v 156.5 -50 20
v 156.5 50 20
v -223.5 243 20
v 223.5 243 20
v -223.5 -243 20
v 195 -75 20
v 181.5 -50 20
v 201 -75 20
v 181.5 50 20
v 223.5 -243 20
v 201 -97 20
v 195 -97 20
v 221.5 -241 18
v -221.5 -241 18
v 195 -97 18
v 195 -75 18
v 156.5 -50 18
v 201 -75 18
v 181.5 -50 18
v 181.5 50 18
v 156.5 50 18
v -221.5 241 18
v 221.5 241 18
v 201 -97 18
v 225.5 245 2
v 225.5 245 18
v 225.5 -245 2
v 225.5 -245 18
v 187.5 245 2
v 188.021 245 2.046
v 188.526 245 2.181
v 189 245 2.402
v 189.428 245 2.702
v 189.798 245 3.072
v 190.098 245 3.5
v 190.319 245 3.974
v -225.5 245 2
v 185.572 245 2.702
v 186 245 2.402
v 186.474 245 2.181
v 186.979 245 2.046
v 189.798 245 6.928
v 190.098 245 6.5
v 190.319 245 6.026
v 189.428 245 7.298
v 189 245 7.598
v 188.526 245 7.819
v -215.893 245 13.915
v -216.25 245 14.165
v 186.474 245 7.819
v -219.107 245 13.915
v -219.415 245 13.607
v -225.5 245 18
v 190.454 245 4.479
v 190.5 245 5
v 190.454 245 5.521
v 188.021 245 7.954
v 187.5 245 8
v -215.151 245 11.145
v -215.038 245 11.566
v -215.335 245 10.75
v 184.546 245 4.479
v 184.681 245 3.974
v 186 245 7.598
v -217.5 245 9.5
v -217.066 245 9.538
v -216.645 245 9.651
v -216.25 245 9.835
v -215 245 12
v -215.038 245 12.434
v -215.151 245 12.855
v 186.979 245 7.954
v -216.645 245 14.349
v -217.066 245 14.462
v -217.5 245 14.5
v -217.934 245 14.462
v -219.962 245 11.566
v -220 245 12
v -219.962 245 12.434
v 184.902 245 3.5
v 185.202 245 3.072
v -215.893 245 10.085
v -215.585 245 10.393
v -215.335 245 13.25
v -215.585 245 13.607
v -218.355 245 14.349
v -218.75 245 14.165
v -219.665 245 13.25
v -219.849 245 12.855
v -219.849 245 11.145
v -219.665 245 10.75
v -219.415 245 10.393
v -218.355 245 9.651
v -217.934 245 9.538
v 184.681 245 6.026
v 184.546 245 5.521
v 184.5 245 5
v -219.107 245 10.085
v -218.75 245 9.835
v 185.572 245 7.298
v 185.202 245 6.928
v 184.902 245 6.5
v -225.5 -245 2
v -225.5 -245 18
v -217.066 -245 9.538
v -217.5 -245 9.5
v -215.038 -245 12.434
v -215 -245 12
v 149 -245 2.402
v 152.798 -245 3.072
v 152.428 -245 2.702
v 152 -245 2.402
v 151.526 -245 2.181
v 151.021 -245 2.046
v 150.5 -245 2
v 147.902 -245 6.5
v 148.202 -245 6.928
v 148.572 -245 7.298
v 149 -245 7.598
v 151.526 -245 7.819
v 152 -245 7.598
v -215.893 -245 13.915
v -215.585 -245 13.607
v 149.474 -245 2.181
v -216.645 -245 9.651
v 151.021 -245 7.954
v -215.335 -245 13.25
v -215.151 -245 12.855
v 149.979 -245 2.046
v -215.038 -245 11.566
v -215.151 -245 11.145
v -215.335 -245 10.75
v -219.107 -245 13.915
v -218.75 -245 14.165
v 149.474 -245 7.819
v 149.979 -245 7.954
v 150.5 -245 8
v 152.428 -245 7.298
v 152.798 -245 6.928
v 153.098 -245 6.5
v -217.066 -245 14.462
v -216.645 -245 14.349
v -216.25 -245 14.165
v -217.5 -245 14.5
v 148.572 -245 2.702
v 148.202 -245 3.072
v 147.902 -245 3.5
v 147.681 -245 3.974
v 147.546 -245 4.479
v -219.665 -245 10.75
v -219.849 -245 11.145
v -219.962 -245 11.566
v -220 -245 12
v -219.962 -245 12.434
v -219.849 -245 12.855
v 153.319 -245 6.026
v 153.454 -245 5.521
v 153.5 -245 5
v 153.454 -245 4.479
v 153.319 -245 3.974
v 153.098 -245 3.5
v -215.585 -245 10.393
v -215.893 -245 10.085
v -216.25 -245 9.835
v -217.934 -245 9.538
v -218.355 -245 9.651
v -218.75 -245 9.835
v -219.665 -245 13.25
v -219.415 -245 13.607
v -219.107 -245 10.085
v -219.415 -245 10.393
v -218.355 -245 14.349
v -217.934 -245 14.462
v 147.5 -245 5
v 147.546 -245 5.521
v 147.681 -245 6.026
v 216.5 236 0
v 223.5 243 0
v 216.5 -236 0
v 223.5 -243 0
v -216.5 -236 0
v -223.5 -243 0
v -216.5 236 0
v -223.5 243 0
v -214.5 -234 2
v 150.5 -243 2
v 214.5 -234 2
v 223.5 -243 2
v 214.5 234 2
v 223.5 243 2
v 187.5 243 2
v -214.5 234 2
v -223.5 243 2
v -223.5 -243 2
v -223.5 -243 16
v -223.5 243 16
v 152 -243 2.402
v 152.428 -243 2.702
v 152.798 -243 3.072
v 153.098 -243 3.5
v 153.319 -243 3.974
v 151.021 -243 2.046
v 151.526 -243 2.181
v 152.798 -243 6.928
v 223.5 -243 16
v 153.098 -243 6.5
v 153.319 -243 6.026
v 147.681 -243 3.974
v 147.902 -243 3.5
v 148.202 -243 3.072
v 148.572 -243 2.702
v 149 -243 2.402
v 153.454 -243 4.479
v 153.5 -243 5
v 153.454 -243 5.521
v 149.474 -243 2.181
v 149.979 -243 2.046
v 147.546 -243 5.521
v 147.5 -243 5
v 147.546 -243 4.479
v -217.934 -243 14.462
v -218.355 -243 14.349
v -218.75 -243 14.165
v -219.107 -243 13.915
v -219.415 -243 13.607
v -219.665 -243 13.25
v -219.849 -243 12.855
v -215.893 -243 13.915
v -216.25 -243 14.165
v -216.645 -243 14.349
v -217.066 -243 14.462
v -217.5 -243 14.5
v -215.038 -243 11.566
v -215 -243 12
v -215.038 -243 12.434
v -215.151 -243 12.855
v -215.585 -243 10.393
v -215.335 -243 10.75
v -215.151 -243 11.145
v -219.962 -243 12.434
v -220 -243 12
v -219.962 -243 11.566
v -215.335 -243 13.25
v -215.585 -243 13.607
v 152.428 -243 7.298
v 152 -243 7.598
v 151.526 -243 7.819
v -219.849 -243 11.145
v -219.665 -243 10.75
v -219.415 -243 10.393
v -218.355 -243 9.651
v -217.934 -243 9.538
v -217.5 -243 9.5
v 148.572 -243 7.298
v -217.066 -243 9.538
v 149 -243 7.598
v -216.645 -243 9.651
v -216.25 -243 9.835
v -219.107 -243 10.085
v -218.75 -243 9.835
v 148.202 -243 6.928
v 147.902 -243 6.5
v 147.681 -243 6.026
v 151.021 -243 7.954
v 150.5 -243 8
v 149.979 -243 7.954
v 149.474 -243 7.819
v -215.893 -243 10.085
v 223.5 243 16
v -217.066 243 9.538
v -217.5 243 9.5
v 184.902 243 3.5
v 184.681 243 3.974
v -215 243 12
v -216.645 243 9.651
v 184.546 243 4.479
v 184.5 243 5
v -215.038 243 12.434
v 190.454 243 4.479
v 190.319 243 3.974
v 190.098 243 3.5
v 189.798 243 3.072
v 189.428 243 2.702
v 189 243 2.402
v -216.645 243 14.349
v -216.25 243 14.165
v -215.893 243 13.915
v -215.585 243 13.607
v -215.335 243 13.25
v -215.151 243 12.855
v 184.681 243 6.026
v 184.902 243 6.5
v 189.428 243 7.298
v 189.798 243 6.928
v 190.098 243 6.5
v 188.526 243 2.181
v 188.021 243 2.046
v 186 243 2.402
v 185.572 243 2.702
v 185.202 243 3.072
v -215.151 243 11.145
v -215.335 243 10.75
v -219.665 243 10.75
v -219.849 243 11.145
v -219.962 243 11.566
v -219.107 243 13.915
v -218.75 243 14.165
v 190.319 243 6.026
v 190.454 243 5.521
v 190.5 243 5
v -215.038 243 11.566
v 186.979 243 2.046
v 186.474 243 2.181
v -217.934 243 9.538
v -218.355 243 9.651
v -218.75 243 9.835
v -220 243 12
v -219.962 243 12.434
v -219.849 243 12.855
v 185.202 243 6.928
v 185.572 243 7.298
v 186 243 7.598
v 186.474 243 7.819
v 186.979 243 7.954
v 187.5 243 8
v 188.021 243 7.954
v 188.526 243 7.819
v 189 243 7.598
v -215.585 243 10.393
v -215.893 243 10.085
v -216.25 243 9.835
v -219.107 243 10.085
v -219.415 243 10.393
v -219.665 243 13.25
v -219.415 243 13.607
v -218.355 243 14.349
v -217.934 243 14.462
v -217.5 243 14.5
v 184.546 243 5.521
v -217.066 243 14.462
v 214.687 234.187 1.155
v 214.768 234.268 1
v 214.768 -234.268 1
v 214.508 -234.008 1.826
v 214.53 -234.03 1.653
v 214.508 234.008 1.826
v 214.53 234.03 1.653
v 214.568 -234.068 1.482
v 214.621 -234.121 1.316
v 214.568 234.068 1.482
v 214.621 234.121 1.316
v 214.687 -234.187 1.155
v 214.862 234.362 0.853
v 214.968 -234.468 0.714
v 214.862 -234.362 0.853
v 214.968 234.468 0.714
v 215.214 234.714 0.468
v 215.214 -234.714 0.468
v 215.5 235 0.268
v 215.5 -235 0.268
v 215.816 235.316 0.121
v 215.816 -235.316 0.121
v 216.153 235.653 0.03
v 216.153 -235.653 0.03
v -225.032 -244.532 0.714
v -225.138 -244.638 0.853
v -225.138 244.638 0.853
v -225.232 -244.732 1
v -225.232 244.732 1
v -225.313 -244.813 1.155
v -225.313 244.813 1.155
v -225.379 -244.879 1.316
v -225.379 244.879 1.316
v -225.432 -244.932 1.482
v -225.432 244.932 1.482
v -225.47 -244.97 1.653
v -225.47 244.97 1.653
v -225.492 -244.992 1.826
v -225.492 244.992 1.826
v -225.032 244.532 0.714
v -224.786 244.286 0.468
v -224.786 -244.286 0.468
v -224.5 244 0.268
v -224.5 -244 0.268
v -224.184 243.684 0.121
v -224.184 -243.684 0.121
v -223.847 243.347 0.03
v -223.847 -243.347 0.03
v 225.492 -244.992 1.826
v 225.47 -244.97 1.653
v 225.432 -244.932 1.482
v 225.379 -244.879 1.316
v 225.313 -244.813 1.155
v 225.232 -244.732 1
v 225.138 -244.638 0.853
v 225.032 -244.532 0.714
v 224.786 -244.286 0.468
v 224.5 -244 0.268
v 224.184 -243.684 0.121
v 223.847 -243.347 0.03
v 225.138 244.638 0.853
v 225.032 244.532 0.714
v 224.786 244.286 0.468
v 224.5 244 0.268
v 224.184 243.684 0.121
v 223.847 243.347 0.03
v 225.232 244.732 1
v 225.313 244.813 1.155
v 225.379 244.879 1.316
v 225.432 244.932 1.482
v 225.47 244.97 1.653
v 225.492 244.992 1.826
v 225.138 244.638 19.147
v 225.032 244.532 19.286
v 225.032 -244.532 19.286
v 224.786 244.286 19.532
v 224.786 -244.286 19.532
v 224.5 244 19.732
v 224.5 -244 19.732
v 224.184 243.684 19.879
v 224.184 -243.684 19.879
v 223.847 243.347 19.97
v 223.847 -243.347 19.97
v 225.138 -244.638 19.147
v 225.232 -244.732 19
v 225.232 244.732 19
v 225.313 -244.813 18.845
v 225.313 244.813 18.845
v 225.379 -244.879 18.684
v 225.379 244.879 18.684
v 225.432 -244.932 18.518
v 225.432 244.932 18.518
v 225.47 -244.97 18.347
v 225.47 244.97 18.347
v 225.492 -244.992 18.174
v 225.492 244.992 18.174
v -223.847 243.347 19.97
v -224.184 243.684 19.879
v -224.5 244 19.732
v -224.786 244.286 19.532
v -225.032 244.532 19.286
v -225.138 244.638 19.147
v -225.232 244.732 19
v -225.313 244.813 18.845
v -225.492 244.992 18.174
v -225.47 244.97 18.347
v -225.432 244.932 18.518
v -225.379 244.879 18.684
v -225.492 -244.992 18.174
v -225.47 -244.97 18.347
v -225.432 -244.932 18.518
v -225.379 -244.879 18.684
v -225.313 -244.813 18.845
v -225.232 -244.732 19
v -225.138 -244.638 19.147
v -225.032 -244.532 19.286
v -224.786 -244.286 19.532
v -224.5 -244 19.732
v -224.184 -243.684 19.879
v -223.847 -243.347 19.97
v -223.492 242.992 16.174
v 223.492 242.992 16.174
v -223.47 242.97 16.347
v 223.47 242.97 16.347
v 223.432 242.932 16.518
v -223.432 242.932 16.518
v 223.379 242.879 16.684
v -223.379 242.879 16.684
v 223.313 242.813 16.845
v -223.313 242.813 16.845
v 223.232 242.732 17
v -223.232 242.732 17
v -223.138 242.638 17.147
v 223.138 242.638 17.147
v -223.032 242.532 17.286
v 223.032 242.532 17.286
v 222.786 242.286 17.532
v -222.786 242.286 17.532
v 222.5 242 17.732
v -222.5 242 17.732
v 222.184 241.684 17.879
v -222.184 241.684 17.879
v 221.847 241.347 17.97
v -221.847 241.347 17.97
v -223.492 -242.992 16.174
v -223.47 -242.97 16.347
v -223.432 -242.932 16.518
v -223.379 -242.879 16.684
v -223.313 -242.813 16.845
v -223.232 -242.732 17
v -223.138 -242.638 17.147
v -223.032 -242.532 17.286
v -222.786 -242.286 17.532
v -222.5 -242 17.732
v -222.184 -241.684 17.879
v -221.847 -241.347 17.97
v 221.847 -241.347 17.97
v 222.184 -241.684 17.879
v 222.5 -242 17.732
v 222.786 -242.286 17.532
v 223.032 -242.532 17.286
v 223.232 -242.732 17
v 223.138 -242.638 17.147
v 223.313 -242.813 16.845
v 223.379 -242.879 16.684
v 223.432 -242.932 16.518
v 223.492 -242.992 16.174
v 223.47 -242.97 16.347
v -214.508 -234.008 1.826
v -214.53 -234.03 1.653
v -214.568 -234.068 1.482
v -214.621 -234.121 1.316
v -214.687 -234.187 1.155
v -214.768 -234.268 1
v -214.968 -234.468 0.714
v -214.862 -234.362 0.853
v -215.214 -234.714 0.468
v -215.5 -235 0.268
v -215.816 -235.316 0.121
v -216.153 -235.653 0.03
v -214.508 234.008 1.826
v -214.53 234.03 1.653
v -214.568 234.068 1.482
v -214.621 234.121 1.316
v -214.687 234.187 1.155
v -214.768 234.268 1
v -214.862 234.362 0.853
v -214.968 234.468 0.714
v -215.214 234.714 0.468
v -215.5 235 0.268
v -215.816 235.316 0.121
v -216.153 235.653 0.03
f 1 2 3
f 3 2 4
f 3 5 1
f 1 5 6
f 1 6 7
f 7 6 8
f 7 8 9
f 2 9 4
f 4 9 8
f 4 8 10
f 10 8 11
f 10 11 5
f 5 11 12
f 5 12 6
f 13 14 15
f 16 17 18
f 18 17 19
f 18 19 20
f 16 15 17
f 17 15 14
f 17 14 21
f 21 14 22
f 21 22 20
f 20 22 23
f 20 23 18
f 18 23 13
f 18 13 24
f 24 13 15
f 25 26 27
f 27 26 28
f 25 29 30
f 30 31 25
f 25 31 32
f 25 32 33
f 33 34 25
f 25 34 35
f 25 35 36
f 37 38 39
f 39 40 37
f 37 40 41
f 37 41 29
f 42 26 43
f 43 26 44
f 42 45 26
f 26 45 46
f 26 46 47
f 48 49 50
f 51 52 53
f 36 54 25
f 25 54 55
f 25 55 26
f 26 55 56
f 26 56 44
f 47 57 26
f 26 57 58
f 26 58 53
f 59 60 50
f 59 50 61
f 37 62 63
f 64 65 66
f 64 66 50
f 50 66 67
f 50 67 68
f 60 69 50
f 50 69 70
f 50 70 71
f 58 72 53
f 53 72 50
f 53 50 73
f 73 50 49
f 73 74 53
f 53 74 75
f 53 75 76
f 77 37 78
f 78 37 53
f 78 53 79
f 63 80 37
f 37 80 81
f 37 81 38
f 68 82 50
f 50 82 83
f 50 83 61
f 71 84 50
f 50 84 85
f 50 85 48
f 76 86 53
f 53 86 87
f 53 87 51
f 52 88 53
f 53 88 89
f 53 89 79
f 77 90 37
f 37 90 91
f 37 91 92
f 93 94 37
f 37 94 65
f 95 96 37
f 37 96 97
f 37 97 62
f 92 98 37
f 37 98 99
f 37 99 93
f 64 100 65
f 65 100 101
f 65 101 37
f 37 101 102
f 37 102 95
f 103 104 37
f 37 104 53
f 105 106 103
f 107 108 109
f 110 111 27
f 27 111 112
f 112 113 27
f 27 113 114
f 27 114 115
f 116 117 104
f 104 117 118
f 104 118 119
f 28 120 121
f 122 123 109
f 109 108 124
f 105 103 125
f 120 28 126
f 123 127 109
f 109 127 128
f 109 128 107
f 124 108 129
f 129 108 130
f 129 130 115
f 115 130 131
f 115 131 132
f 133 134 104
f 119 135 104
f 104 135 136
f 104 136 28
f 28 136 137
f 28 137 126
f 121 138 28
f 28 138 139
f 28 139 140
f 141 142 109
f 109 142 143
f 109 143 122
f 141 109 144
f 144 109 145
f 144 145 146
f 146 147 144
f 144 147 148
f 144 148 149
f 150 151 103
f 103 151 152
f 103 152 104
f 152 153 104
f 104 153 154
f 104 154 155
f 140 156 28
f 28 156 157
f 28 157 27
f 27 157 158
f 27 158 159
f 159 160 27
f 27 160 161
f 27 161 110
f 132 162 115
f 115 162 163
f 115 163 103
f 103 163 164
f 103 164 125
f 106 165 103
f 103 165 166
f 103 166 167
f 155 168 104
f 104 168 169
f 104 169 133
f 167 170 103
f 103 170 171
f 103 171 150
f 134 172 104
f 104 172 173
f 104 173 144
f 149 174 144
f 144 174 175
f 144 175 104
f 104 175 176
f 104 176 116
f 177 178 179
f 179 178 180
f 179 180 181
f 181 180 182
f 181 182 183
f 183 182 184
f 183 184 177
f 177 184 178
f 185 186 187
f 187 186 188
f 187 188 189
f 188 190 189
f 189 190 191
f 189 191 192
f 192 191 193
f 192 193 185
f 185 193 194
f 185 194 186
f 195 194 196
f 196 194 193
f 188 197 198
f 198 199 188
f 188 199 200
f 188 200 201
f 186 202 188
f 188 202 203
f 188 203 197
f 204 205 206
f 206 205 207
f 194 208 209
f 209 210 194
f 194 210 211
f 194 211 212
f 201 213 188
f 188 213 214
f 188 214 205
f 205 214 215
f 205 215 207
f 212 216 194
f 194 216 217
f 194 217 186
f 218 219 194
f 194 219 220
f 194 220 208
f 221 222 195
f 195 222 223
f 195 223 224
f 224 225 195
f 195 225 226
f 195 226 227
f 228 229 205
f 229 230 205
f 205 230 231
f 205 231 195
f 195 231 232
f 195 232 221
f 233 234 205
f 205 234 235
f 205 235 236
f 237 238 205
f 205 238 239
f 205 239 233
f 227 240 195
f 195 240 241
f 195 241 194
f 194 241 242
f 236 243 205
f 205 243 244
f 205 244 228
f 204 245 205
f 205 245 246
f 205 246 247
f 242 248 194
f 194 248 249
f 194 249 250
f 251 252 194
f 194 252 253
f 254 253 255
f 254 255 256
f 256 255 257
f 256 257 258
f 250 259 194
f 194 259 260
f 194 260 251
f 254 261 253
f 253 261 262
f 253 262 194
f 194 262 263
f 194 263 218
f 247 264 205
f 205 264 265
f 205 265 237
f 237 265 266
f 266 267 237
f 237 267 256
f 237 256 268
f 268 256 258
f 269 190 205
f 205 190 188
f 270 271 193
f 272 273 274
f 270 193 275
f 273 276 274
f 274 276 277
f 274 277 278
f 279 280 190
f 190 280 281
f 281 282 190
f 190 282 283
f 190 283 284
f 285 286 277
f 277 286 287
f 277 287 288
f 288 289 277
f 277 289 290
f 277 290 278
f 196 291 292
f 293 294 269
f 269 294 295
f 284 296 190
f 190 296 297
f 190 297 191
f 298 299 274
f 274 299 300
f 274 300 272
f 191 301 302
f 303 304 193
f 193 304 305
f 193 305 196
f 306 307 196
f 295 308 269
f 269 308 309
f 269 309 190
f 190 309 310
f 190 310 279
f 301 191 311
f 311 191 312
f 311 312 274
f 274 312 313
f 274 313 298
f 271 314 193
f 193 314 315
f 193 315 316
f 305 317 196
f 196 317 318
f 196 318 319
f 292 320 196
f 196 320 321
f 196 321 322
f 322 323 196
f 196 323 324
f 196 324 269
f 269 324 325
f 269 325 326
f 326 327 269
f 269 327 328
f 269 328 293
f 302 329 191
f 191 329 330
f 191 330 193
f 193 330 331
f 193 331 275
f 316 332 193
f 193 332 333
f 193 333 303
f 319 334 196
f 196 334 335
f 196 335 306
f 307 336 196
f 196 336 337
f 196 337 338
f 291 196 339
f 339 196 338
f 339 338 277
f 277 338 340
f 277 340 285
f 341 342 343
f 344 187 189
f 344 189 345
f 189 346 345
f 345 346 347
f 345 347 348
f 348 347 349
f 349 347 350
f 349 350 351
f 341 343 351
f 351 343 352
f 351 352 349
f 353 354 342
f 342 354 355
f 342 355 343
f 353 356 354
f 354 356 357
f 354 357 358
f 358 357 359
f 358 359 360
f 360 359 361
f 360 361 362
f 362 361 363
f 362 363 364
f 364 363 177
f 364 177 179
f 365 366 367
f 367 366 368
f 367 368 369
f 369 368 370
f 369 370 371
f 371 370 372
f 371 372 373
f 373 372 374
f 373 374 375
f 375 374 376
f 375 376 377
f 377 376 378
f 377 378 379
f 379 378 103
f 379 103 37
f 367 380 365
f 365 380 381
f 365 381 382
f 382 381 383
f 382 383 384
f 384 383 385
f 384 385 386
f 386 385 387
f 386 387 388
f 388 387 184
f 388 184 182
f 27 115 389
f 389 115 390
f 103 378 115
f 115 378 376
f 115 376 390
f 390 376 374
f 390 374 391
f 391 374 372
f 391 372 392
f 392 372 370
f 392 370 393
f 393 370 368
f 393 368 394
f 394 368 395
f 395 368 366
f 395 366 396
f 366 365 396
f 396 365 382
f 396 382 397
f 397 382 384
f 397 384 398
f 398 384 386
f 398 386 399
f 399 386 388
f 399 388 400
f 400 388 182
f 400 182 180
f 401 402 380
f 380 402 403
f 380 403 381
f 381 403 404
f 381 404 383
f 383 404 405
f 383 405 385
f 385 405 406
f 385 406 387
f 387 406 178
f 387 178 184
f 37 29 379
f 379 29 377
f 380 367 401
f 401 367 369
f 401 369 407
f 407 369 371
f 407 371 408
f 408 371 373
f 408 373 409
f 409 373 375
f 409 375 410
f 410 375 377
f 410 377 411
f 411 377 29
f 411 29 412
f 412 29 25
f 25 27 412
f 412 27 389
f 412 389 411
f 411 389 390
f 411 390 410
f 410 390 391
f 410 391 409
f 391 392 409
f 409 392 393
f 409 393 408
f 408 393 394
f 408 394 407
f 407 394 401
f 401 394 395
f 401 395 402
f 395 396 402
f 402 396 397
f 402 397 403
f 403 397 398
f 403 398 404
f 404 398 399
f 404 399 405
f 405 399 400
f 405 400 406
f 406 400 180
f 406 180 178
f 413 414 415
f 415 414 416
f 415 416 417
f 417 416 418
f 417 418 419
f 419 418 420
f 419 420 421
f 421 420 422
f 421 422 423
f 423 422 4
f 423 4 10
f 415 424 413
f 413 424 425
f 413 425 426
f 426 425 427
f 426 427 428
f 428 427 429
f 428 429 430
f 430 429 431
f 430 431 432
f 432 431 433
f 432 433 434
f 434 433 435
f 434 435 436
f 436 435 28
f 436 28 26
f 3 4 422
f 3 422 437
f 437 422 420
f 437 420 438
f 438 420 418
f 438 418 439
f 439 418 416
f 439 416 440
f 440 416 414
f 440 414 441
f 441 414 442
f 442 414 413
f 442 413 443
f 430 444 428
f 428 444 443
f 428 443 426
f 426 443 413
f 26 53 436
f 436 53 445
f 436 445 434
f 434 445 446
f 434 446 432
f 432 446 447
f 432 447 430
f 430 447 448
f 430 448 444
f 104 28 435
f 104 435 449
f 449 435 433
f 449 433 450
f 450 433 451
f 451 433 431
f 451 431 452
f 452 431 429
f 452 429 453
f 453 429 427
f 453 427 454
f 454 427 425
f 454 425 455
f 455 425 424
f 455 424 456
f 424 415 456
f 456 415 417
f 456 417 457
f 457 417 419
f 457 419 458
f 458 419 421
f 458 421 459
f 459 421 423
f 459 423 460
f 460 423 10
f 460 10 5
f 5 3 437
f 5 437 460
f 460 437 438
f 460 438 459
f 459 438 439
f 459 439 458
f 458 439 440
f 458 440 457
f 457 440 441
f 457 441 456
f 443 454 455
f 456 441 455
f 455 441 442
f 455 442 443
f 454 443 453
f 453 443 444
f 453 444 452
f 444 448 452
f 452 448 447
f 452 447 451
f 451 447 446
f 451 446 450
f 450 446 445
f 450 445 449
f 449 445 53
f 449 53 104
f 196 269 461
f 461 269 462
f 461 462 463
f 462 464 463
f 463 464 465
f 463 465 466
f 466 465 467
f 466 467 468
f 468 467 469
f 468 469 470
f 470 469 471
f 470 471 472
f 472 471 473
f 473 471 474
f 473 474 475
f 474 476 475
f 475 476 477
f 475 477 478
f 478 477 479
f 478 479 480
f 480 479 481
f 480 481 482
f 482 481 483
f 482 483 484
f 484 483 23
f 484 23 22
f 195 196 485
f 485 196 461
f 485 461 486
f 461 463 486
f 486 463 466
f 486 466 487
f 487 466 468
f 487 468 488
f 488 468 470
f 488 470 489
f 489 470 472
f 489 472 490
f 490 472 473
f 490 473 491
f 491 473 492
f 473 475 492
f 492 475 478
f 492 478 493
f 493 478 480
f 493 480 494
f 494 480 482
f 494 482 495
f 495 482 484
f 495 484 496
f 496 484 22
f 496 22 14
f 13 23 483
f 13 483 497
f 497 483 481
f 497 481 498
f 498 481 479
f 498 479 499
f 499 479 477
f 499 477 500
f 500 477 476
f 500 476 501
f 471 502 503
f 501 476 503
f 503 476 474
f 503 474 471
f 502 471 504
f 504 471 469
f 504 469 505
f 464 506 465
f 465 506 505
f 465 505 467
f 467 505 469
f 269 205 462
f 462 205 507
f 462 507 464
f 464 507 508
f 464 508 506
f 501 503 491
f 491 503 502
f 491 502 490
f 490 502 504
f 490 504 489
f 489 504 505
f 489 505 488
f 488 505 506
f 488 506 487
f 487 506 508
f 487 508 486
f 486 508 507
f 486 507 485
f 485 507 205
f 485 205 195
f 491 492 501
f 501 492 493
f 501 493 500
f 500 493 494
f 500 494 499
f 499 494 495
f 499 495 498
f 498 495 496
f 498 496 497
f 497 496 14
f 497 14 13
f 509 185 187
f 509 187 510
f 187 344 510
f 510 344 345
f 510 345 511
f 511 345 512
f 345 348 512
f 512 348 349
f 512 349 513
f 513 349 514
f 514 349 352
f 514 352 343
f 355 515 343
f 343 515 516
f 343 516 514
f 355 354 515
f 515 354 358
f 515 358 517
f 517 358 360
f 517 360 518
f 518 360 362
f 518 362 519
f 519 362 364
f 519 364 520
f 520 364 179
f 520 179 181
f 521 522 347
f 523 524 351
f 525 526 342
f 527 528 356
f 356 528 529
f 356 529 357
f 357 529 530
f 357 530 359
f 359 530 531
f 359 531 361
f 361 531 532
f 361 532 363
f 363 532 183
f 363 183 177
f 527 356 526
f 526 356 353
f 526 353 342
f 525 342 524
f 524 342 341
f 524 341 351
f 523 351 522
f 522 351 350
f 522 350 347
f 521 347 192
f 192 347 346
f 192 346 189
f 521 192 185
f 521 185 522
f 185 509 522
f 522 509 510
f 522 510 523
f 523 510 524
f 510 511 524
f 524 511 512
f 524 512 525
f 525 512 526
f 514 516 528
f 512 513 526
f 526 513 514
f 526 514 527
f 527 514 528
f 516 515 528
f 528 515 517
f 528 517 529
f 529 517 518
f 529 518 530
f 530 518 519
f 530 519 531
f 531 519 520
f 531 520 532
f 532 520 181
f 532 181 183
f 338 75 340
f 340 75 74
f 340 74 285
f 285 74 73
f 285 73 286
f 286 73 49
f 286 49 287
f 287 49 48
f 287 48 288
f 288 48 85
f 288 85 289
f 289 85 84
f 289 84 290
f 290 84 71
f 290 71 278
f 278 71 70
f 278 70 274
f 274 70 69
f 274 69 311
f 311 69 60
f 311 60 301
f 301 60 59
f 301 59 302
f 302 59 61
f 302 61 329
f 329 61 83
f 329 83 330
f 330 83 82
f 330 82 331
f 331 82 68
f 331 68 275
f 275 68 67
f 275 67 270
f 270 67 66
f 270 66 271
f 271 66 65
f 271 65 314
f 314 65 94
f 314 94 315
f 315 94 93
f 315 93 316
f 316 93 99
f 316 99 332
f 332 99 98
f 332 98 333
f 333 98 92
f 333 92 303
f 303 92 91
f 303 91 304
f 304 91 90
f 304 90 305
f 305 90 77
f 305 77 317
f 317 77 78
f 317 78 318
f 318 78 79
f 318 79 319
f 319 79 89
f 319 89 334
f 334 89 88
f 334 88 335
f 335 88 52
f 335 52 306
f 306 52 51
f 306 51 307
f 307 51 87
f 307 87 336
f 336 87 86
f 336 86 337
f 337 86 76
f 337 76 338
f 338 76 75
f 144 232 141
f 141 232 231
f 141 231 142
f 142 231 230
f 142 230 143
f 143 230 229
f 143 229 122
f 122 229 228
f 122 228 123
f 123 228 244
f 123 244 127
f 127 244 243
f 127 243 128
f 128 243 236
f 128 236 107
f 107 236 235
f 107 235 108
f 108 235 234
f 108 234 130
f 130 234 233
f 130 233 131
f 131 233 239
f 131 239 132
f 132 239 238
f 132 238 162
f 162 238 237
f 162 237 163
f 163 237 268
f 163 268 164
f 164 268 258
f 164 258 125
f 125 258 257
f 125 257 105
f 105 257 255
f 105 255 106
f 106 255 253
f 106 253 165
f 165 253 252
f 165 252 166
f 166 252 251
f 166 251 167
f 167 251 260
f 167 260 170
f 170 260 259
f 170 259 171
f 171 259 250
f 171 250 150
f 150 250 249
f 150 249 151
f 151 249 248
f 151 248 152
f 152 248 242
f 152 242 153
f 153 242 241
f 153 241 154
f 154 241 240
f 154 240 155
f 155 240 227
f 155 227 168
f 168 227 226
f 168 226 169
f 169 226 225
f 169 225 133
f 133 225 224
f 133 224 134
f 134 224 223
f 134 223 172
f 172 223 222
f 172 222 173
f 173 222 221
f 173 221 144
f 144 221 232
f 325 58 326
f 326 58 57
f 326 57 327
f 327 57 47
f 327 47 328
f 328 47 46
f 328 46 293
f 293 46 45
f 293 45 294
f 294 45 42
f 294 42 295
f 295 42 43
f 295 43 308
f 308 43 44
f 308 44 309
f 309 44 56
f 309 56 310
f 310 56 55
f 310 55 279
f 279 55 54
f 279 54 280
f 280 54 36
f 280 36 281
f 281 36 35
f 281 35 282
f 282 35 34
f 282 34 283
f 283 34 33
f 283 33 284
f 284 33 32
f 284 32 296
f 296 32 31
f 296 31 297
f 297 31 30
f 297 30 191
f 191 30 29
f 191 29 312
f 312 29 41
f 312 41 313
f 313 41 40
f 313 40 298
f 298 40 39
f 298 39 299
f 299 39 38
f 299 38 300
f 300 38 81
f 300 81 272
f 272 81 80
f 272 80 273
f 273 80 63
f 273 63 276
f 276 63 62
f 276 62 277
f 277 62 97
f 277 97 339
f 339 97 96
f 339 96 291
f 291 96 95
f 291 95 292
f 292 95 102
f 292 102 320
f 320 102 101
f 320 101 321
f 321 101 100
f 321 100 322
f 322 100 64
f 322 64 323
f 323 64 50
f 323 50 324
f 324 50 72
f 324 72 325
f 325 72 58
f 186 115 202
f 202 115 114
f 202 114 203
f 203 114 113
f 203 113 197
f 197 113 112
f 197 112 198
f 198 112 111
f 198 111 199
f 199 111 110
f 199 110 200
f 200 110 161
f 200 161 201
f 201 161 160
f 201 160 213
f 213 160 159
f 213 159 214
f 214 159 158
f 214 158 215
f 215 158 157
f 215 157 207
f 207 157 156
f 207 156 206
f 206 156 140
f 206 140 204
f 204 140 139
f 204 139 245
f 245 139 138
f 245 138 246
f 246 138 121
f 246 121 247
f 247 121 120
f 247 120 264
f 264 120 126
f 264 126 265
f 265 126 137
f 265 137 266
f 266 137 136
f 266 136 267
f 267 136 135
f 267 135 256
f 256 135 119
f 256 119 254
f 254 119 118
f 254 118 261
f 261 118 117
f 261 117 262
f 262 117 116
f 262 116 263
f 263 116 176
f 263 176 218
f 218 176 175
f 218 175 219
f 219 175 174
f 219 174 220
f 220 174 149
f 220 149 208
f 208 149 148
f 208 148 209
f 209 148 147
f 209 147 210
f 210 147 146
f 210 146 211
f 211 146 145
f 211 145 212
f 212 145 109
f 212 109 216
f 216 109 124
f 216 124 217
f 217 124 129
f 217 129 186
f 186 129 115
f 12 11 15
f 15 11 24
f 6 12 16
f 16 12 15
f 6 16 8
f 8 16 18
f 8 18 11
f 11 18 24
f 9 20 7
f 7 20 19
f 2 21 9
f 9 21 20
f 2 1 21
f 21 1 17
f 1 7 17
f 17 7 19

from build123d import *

# Parameters (mm, degrees)
SKETCH1_W           = 451
SKETCH1_H           = 490
BOSS_EXTRUDE1_DEPTH = 20
SKETCH2_W           = 429
SKETCH2_H           = 468
CUT_EXTRUDE1_DEPTH  = 18
SKETCH3_W           = 16
SKETCH3_H           = 468
CUT_EXTRUDE2_DEPTH  = 9
SKETCH4_W           = 438
SKETCH4_H           = 16
CUT_EXTRUDE3_DEPTH  = 9
SKETCH5_W           = 16
SKETCH5_H           = 477
CUT_EXTRUDE4_DEPTH  = 9
SKETCH6_W           = 447
SKETCH6_H           = 16
CUT_EXTRUDE5_DEPTH  = 9
FILLET3_R           = 2
FILLET4_R           = 2
SKETCH20_R          = 2.5
CUT_EXTRUDE12_DEPTH = 540.768700463
SKETCH21_R          = 3
CUT_EXTRUDE13_DEPTH = 2
SKETCH22_R          = 3
CUT_EXTRUDE14_DEPTH = 2
SKETCH23_W          = 25
SKETCH23_H          = 100
SKETCH23_W_2        = 6
SKETCH23_H_2        = 22
CUT_EXTRUDE15_DEPTH = 2


with BuildPart() as part:
    # Sketch1 → Boss-Extrude1 (new body)
    with BuildSketch(Plane.XY):
        Rectangle(SKETCH1_W, SKETCH1_H)
    extrude(amount=BOSS_EXTRUDE1_DEPTH)

    # Sketch2 → Cut-Extrude1 (cut)
    with BuildSketch(Plane(origin=(0, 0, 0), x_dir=(-1, 0, 0), z_dir=(0, 0, -1))):
        Rectangle(SKETCH2_W, SKETCH2_H)
    extrude(amount=-CUT_EXTRUDE1_DEPTH, mode=Mode.SUBTRACT)

    # Sketch3 → Cut-Extrude2 (cut)
    with BuildSketch(Plane(origin=(-214.5, 0, 0), x_dir=(0, 0, -1), z_dir=(1, 0, 0))):
        with Locations((-10, 0)):
            Rectangle(SKETCH3_W, SKETCH3_H)
    extrude(amount=-CUT_EXTRUDE2_DEPTH, mode=Mode.SUBTRACT)

    # Sketch4 → Cut-Extrude3 (cut)
    with BuildSketch(Plane(origin=(0, -234, 0), x_dir=(1, 0, 0), z_dir=(0, 1, 0))):
        with Locations((-4.5, -10)):
            Rectangle(SKETCH4_W, SKETCH4_H)
    extrude(amount=-CUT_EXTRUDE3_DEPTH, mode=Mode.SUBTRACT)

    # Sketch5 → Cut-Extrude4 (cut)
    with BuildSketch(Plane.ZY.offset(-214.5)):
        with Locations((10, -4.5)):
            Rectangle(SKETCH5_W, SKETCH5_H)
    extrude(amount=-CUT_EXTRUDE4_DEPTH, mode=Mode.SUBTRACT)

    # Sketch6 → Cut-Extrude5 (cut)
    with BuildSketch(Plane.XZ.offset(-234)):
        with Locations((0, 10)):
            Rectangle(SKETCH6_W, SKETCH6_H)
    extrude(amount=-CUT_EXTRUDE5_DEPTH, mode=Mode.SUBTRACT)

    # Fillet3
    fillet3_edges = [part.edges().sort_by_distance(p)[0] for p in [
        (214.5, 0, 0),
        (225.5, 0, 0),
        (0, 245, 0),
        (0, -245, 0),
        (-225.5, 0, 0),
        (-225.5, 0, 20),
        (0, -245, 20),
        (225.5, 0, 20),
        (0, 245, 20),
    ]]
    fillet(fillet3_edges, radius=FILLET3_R - 0.0001)  # a hair under: the kernel refuses the full size

    # Fillet4
    fillet4_edges = [part.edges().sort_by_distance(p)[0] for p in [
        (0, -243, 18),
        (223.5, 0, 18),
        (0, 243, 18),
        (-223.5, 0, 18),
        (-214.5, 0, 0),
        (0.99995, -234, 0),
        (0.99995, 234, 0),
    ]]
    fillet(fillet4_edges, radius=FILLET4_R - 0.0001)  # a hair under: the kernel refuses the full size

    # Sketch20 → Cut-Extrude12 (cut, through all)
    with BuildSketch(Plane(origin=(0, 245, 0), x_dir=(1, 0, 0), z_dir=(0, 1, 0))):
        with Locations(Location((-217.5, -12, 0), (0, 0, 270))):
            Circle(SKETCH20_R)
    extrude(amount=-CUT_EXTRUDE12_DEPTH, mode=Mode.SUBTRACT)

    # Sketch21 → Cut-Extrude13 (cut)
    with BuildSketch(Plane(origin=(0, 245, 0), x_dir=(1, 0, 0), z_dir=(0, 1, 0))):
        with Locations(Location((187.5, -5, 0), (0, 0, 90))):
            Circle(SKETCH21_R)
    extrude(amount=-CUT_EXTRUDE13_DEPTH, mode=Mode.SUBTRACT)

    # Sketch22 → Cut-Extrude14 (cut)
    with BuildSketch(Plane.XZ.offset(245)):
        with Locations(Location((150.5, 5, 0), (0, 0, 270))):
            Circle(SKETCH22_R)
    extrude(amount=-CUT_EXTRUDE14_DEPTH, mode=Mode.SUBTRACT)

    # Sketch23 → Cut-Extrude15 (cut)
    with BuildSketch(Plane.XY.offset(20)):
        with Locations((169, 0)):
            Rectangle(SKETCH23_W, SKETCH23_H)
        with Locations((198, -86)):
            Rectangle(SKETCH23_W_2, SKETCH23_H_2)
    extrude(amount=-CUT_EXTRUDE15_DEPTH, mode=Mode.SUBTRACT)


solid = part.part
